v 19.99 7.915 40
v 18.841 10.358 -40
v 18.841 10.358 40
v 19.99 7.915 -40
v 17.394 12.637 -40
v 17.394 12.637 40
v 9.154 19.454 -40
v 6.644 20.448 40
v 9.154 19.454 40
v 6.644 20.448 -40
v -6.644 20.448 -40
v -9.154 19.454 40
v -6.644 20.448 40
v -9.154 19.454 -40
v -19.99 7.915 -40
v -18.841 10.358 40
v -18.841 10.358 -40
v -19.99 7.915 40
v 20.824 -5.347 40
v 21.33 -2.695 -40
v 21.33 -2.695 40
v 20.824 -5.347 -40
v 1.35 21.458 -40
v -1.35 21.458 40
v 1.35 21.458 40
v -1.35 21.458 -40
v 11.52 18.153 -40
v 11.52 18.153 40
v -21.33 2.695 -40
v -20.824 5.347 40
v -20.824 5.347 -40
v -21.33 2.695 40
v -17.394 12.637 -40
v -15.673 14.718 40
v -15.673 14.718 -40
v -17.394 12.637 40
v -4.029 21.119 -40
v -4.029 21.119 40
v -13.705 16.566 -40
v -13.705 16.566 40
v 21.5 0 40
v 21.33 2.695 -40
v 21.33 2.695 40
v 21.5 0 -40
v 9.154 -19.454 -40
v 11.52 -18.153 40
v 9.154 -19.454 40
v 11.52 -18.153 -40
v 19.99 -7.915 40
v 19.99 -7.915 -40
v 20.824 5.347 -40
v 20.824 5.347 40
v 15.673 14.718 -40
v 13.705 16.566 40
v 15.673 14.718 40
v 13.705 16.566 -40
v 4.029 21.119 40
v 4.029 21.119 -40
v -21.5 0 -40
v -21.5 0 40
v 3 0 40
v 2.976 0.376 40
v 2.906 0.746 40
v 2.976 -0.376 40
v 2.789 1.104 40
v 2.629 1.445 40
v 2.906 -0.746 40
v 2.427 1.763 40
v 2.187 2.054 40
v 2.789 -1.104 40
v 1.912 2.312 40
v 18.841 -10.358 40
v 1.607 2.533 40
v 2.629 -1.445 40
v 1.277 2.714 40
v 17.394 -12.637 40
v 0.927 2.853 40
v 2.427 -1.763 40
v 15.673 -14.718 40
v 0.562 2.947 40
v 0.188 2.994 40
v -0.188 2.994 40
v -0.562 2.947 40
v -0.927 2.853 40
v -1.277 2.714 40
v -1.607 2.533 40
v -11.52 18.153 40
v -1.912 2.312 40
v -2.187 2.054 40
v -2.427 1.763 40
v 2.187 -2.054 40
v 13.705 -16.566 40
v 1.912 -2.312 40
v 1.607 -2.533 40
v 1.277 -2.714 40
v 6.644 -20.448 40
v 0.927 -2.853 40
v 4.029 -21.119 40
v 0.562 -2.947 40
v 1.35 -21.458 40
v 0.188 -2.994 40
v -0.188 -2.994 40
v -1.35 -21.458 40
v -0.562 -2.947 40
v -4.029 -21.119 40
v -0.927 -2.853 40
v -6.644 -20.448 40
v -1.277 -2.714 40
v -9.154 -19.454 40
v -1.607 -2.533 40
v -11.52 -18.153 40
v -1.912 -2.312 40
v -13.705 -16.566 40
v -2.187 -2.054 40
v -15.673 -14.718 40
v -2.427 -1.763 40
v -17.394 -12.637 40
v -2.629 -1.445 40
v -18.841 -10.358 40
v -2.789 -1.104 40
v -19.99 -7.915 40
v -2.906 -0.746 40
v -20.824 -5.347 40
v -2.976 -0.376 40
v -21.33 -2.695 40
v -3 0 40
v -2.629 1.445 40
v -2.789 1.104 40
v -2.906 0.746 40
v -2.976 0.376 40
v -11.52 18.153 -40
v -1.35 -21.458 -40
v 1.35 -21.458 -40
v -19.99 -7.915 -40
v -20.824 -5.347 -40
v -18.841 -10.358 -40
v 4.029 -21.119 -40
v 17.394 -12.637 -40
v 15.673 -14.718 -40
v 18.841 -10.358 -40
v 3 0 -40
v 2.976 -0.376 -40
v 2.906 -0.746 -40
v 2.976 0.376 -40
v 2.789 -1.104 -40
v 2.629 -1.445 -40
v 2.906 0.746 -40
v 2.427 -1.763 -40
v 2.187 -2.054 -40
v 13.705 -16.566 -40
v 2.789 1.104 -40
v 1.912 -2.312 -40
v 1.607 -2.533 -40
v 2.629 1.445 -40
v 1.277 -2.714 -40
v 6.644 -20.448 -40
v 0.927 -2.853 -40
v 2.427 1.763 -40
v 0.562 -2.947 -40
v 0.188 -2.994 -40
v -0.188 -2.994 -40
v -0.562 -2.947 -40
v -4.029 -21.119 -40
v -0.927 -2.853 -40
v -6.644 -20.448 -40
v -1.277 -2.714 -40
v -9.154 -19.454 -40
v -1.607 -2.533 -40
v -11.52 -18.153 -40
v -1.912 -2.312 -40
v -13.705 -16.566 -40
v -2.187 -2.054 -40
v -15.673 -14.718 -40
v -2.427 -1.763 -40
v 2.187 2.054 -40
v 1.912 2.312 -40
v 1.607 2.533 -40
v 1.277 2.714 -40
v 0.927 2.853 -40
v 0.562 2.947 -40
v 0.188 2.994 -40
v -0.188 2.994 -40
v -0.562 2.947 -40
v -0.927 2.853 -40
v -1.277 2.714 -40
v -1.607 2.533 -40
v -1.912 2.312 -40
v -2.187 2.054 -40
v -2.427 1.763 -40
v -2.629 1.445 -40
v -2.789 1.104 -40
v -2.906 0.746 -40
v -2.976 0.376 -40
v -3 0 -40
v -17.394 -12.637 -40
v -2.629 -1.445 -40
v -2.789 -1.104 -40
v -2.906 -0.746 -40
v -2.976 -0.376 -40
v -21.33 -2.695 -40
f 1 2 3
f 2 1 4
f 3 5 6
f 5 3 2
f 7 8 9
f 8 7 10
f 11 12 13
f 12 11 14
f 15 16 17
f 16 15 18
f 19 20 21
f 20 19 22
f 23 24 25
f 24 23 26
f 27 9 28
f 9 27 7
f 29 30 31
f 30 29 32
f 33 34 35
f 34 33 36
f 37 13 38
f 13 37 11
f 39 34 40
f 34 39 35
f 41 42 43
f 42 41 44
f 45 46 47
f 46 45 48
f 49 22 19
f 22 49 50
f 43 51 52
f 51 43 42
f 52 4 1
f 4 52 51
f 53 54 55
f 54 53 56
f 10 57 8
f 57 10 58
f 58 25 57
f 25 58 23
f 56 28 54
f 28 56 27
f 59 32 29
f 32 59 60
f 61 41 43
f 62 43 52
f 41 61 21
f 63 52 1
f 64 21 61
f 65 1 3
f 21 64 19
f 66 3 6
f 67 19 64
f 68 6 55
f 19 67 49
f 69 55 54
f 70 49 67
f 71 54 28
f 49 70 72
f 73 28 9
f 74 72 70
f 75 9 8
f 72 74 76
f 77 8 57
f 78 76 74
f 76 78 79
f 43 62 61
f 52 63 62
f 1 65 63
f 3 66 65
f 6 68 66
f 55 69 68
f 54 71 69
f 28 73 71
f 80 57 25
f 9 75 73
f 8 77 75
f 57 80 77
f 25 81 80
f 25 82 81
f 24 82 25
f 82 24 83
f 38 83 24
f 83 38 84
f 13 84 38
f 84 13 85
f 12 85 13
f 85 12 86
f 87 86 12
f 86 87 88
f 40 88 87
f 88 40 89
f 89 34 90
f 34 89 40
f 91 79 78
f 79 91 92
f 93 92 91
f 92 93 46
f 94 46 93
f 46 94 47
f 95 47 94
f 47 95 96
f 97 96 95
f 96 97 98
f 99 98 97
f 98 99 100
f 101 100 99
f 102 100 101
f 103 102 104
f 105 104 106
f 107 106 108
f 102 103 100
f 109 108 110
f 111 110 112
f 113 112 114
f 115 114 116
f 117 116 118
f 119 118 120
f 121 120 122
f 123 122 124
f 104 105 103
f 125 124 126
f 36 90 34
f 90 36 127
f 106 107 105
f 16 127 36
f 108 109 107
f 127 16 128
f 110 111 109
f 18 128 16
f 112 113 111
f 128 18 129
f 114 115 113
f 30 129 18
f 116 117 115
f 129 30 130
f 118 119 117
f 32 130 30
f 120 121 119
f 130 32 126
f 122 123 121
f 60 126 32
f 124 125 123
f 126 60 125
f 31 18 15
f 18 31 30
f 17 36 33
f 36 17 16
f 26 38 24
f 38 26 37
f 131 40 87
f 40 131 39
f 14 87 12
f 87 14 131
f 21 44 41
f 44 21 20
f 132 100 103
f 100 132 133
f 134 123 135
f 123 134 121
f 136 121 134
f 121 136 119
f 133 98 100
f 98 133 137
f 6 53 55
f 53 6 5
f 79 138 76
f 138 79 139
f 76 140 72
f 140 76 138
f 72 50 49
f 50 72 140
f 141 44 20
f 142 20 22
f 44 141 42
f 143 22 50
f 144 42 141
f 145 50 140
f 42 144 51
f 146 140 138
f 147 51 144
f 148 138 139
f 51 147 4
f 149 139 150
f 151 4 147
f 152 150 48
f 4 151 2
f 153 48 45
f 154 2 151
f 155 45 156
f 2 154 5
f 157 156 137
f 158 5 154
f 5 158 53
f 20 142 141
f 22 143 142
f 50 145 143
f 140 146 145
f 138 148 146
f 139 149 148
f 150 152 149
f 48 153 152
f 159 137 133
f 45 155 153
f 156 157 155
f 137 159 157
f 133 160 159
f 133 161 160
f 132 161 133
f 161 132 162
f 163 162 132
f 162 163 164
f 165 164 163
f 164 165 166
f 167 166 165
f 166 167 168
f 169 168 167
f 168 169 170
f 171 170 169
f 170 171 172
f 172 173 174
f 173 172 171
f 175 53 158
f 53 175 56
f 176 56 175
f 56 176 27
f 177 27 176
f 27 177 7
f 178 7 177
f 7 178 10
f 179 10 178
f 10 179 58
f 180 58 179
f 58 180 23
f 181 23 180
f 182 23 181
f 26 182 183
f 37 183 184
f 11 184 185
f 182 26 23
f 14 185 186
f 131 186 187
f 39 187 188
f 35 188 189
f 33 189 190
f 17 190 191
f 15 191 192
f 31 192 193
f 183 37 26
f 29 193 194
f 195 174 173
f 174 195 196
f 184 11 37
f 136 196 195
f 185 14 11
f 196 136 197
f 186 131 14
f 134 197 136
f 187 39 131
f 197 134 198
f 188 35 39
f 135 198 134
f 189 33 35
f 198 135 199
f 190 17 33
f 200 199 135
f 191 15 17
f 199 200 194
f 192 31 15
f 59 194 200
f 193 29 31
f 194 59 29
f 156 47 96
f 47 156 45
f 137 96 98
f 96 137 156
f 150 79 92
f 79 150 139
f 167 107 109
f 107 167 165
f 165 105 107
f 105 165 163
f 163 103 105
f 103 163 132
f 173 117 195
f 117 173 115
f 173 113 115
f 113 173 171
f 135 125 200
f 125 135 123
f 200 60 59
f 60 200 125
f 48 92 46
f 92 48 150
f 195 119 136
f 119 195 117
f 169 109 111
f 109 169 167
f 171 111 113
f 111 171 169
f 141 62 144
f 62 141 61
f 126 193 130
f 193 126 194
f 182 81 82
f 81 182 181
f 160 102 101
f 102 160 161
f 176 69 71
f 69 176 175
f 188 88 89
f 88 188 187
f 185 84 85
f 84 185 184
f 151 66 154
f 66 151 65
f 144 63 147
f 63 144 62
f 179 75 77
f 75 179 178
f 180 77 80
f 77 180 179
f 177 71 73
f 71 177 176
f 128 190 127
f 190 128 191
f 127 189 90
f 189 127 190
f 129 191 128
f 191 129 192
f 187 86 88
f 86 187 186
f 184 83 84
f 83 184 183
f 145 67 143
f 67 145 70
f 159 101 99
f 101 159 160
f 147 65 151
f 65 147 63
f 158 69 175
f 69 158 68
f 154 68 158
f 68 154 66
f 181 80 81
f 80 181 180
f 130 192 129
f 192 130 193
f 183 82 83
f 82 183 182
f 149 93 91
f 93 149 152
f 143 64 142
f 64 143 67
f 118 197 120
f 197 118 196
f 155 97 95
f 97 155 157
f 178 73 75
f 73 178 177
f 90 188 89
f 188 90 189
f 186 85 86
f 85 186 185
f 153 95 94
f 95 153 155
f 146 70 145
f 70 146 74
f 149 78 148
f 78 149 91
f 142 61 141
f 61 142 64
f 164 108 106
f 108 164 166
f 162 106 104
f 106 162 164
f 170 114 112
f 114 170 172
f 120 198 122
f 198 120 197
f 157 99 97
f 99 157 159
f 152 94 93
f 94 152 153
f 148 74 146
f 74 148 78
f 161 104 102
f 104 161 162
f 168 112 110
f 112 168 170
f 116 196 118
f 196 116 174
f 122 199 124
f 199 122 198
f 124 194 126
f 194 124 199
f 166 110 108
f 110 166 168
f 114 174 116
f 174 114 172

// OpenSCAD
$fn = 50;


difference() {
	union() {
		translate(v = [0, 0, -40.0000000000]) {
			cylinder(h = 80, r = 21.5000000000);
		}
	}
	union() {
		translate(v = [0, 0, -100.0000000000]) {
			cylinder(h = 200, r = 3);
		}
	}
}
